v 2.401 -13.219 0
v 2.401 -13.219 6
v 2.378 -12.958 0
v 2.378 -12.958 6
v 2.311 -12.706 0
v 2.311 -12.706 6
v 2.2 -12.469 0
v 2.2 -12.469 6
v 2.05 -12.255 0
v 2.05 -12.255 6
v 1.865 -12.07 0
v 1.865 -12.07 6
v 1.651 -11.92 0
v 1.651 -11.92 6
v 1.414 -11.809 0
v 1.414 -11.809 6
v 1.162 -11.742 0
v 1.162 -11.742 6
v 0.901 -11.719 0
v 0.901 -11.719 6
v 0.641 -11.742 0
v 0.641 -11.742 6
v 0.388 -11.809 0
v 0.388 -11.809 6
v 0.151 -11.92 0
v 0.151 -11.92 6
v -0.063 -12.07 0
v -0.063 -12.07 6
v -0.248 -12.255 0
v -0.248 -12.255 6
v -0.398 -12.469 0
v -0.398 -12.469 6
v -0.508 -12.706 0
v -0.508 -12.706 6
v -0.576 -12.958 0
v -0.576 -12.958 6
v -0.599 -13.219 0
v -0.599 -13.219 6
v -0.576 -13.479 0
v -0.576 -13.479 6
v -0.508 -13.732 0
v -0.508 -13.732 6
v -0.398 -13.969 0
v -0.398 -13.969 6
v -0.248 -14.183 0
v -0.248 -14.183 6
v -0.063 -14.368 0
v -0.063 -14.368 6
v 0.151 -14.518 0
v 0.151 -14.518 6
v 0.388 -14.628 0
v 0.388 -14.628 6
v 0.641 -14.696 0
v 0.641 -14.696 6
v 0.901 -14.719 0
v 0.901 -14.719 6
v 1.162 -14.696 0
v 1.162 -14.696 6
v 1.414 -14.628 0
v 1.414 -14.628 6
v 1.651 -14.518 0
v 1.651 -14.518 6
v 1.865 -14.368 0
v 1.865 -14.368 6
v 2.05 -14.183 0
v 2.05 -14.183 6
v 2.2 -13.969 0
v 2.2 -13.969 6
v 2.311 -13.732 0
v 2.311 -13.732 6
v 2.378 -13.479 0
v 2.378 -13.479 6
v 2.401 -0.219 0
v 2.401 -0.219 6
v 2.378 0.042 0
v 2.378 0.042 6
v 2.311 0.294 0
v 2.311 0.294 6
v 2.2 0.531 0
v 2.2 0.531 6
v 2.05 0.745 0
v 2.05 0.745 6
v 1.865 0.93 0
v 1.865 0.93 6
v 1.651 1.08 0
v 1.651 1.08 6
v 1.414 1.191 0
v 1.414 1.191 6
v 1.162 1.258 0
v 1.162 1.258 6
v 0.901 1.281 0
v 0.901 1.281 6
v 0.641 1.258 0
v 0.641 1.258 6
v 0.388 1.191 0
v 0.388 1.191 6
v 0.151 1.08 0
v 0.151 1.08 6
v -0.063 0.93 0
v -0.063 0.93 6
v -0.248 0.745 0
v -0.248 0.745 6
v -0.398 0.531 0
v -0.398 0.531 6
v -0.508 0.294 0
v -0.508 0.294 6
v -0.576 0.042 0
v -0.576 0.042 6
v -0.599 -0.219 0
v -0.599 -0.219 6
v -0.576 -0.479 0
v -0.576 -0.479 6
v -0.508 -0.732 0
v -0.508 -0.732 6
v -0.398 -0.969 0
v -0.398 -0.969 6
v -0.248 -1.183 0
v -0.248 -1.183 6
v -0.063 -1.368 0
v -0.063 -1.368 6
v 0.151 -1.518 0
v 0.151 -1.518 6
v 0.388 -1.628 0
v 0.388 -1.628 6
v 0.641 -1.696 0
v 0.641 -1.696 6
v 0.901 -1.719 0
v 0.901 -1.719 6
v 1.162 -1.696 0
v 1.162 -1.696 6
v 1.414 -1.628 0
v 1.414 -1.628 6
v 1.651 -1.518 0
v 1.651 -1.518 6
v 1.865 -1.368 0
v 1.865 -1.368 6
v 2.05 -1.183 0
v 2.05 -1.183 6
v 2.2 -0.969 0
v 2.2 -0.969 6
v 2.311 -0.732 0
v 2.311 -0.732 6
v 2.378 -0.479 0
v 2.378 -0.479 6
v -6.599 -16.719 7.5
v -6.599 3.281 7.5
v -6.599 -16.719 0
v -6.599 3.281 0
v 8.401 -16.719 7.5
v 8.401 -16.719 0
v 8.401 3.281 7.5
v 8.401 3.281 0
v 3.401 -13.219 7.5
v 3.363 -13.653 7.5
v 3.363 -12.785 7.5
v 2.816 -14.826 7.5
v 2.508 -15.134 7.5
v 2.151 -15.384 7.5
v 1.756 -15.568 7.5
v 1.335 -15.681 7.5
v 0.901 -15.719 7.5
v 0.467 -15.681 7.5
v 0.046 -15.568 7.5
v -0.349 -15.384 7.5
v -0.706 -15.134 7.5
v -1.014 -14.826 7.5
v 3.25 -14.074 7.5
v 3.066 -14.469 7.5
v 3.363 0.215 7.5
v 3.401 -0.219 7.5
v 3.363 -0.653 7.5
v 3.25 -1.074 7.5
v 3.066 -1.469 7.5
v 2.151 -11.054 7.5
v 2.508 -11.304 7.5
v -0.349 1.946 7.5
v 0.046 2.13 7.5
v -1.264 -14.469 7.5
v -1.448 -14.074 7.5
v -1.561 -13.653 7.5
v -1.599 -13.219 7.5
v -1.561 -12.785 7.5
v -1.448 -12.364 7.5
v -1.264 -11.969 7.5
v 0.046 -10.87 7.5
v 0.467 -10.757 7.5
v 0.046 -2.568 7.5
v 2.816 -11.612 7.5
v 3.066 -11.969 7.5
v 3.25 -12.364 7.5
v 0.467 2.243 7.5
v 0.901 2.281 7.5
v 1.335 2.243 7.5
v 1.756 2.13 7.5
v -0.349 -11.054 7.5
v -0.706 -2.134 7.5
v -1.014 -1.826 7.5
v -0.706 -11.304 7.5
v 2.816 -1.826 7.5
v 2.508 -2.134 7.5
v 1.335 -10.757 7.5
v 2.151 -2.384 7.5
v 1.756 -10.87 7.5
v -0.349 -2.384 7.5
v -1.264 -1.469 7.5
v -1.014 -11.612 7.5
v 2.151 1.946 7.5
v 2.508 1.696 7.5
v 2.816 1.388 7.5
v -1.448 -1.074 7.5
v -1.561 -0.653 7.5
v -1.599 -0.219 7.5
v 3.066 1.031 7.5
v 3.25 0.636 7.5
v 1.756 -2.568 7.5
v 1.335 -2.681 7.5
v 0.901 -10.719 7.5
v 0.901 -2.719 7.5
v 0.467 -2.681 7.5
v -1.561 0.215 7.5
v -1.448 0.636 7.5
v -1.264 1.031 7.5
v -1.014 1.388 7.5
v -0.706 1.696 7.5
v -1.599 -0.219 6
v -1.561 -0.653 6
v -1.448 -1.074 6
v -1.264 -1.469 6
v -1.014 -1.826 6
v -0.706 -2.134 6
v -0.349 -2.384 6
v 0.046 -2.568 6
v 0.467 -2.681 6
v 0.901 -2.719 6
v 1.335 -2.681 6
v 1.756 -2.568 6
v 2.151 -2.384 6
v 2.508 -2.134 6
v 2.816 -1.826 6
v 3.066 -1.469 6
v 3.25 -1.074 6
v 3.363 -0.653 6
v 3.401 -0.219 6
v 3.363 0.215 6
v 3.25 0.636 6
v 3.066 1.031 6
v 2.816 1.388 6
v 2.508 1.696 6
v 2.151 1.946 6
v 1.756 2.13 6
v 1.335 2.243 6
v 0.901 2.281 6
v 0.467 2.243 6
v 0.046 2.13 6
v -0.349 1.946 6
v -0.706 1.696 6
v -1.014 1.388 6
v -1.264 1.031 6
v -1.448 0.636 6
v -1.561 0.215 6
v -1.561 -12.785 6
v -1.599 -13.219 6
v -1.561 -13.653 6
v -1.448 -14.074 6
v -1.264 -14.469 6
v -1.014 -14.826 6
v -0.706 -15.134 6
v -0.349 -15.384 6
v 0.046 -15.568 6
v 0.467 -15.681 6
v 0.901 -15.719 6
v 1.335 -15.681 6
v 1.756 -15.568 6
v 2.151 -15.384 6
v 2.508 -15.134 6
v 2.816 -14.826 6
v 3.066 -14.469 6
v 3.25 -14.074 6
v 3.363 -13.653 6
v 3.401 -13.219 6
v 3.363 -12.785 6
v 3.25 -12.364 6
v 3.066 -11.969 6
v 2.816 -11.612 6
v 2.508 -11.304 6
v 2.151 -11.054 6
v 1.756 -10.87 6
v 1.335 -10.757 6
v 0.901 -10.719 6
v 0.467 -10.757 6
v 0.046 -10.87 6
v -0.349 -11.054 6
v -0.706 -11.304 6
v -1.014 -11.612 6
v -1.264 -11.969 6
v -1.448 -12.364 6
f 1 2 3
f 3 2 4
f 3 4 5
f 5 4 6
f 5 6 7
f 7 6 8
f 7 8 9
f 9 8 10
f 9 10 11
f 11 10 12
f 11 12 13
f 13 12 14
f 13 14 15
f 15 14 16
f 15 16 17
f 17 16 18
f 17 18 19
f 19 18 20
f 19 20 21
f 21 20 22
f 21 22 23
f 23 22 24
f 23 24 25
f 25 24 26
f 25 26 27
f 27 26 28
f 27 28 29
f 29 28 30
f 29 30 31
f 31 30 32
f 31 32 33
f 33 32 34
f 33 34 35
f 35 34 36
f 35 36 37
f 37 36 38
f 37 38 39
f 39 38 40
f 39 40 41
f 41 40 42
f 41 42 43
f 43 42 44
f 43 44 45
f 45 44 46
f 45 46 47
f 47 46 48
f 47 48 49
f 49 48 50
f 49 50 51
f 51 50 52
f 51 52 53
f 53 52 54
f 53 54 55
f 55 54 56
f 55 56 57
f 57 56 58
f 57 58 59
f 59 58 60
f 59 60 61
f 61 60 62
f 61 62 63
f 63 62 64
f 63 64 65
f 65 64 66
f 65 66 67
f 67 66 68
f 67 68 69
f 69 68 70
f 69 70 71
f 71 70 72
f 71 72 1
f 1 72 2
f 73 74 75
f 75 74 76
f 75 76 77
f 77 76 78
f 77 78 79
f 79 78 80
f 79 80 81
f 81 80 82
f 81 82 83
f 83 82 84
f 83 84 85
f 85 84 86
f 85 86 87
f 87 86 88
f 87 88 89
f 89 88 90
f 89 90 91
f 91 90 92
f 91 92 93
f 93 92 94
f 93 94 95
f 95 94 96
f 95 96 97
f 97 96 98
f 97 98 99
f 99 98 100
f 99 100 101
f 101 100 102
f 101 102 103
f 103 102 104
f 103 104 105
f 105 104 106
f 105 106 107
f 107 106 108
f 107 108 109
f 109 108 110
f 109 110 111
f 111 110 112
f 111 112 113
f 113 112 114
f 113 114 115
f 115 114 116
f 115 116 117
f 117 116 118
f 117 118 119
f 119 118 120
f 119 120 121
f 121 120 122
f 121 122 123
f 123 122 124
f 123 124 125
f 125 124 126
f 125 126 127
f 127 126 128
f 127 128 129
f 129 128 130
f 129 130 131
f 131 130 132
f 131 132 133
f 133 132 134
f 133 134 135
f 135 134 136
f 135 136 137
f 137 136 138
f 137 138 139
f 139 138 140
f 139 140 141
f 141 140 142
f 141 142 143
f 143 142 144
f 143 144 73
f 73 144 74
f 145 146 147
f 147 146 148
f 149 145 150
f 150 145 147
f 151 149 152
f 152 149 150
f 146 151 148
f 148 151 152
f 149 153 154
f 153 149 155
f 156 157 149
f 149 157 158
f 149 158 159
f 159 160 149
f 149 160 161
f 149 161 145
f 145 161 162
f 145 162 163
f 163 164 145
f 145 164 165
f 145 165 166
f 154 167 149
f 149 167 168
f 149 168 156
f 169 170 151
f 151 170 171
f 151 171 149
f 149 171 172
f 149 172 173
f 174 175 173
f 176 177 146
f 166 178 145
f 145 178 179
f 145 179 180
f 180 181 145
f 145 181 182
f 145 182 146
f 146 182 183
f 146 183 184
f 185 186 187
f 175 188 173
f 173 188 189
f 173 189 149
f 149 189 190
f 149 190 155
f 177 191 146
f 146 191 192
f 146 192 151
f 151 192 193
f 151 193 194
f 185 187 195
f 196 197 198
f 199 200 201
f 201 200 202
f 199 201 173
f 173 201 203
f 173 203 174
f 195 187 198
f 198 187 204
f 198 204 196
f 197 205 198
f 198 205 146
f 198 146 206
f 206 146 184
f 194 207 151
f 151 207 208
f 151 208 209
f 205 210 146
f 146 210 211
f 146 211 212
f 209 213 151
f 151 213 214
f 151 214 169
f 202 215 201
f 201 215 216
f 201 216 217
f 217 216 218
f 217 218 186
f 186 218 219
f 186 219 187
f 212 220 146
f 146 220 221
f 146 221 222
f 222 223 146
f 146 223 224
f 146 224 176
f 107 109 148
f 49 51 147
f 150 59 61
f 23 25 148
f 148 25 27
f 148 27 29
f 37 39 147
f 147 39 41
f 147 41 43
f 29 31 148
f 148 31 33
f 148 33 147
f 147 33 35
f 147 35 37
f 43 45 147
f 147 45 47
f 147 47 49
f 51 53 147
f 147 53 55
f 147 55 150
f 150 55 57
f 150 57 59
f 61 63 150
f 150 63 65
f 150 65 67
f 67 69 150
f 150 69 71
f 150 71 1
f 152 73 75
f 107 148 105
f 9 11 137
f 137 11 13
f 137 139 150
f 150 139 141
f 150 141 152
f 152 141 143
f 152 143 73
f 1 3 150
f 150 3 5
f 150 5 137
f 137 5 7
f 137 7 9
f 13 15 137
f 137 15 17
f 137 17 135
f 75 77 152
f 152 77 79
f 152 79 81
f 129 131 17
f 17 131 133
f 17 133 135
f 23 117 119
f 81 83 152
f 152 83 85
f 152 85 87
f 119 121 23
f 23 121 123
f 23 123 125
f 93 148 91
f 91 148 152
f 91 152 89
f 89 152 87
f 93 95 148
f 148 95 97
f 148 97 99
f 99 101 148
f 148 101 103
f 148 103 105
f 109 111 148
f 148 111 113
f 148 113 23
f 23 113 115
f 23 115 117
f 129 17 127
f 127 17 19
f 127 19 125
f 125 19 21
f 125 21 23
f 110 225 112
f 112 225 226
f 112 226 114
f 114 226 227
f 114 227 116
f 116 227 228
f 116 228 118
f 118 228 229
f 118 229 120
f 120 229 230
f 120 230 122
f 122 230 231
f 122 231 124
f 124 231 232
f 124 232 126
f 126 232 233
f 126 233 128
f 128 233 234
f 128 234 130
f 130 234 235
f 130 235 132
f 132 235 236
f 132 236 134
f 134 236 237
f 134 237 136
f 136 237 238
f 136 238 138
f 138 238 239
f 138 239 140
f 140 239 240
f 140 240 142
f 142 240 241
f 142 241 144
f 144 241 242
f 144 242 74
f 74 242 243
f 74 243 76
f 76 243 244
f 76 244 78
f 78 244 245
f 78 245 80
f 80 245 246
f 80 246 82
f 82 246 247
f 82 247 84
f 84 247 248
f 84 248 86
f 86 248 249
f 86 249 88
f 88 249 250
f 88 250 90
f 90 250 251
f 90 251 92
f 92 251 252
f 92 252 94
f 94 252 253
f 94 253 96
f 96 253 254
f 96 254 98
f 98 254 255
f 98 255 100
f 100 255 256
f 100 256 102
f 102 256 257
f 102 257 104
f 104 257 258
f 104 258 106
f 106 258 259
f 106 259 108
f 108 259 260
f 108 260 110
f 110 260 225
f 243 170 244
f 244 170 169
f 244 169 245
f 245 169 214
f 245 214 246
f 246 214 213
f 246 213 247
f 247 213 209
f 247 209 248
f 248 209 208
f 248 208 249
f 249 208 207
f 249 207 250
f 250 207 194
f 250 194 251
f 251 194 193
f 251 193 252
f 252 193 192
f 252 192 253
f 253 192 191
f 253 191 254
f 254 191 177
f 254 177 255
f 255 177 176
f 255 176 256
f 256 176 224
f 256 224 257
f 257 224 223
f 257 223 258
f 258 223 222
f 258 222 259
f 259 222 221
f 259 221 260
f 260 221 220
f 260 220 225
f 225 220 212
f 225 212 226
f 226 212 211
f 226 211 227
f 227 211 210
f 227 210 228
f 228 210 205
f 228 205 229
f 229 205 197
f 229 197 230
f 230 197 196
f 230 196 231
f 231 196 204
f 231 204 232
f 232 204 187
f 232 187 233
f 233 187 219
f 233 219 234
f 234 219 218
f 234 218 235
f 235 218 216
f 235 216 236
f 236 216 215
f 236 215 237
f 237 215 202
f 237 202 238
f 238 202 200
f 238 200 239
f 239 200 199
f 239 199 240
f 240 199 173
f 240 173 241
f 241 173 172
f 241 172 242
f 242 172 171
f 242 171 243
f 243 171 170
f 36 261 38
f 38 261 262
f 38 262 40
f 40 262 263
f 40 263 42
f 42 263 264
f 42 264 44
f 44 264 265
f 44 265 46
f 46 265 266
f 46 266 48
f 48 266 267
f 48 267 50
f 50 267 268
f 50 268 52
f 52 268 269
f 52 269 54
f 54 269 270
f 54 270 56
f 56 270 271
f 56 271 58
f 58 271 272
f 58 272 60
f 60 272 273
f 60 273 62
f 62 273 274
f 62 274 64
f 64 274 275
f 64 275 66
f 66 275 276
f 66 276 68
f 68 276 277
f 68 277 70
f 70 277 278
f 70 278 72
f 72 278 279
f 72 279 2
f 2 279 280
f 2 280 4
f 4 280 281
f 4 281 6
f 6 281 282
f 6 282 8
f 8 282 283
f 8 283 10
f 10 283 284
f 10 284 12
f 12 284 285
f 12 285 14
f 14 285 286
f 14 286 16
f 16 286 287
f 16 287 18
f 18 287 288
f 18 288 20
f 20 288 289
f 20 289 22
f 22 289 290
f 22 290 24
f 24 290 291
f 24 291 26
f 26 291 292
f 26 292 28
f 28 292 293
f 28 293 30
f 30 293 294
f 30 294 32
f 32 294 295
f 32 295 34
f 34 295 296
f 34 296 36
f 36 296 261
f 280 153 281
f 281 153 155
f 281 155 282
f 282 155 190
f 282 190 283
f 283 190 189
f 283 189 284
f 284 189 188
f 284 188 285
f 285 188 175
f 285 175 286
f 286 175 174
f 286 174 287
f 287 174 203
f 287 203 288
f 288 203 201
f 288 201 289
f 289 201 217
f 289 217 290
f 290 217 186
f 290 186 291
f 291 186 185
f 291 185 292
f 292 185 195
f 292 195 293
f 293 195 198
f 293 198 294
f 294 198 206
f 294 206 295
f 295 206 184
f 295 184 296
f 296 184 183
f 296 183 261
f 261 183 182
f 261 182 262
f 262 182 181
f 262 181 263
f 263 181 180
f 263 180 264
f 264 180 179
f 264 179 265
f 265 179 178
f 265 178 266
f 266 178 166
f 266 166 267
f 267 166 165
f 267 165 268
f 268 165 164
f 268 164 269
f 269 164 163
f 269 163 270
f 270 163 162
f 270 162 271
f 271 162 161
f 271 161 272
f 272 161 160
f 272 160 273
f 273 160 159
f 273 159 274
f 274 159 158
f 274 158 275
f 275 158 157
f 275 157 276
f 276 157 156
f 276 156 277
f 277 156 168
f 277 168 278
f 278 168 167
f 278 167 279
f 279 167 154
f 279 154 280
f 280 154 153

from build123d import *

# Parameters (mm, degrees)
IZIM1_W                     = 15
IZIM1_H                     = 20
Y_KSEKLIK_EKSTR_ZYON1_DEPTH = 7.5
IZIM2_R                     = 1.5
KES_EKSTR_ZYON1_DEPTH       = 7.5
IZIM3_R                     = 2.5
KES_EKSTR_ZYON2_DEPTH       = 1.5


with BuildPart() as part:
    # Çizim1 → Yükseklik-Ekstrüzyon1 (new body)
    with BuildSketch(Plane.XY):
        with Locations((0.901187863, -6.71875)):
            Rectangle(IZIM1_W, IZIM1_H)
    extrude(amount=Y_KSEKLIK_EKSTR_ZYON1_DEPTH)

    # Çizim2 → Kes-Ekstrüzyon1 (cut)
    with BuildSketch(Plane.XY.offset(7.5)):
        with Locations((0.901187863, -0.21875)):
            Circle(IZIM2_R)
        with Locations((0.901187863, -13.21875)):
            Circle(IZIM2_R)
    extrude(amount=-KES_EKSTR_ZYON1_DEPTH, mode=Mode.SUBTRACT)

    # Çizim3 → Kes-Ekstrüzyon2 (cut)
    with BuildSketch(Plane.XY.offset(7.5)):
        with Locations((0.901187863, -0.21875)):
            Circle(IZIM3_R)
        with Locations((0.901187863, -13.21875)):
            Circle(IZIM3_R)
    extrude(amount=-KES_EKSTR_ZYON2_DEPTH, mode=Mode.SUBTRACT)


solid = part.part
